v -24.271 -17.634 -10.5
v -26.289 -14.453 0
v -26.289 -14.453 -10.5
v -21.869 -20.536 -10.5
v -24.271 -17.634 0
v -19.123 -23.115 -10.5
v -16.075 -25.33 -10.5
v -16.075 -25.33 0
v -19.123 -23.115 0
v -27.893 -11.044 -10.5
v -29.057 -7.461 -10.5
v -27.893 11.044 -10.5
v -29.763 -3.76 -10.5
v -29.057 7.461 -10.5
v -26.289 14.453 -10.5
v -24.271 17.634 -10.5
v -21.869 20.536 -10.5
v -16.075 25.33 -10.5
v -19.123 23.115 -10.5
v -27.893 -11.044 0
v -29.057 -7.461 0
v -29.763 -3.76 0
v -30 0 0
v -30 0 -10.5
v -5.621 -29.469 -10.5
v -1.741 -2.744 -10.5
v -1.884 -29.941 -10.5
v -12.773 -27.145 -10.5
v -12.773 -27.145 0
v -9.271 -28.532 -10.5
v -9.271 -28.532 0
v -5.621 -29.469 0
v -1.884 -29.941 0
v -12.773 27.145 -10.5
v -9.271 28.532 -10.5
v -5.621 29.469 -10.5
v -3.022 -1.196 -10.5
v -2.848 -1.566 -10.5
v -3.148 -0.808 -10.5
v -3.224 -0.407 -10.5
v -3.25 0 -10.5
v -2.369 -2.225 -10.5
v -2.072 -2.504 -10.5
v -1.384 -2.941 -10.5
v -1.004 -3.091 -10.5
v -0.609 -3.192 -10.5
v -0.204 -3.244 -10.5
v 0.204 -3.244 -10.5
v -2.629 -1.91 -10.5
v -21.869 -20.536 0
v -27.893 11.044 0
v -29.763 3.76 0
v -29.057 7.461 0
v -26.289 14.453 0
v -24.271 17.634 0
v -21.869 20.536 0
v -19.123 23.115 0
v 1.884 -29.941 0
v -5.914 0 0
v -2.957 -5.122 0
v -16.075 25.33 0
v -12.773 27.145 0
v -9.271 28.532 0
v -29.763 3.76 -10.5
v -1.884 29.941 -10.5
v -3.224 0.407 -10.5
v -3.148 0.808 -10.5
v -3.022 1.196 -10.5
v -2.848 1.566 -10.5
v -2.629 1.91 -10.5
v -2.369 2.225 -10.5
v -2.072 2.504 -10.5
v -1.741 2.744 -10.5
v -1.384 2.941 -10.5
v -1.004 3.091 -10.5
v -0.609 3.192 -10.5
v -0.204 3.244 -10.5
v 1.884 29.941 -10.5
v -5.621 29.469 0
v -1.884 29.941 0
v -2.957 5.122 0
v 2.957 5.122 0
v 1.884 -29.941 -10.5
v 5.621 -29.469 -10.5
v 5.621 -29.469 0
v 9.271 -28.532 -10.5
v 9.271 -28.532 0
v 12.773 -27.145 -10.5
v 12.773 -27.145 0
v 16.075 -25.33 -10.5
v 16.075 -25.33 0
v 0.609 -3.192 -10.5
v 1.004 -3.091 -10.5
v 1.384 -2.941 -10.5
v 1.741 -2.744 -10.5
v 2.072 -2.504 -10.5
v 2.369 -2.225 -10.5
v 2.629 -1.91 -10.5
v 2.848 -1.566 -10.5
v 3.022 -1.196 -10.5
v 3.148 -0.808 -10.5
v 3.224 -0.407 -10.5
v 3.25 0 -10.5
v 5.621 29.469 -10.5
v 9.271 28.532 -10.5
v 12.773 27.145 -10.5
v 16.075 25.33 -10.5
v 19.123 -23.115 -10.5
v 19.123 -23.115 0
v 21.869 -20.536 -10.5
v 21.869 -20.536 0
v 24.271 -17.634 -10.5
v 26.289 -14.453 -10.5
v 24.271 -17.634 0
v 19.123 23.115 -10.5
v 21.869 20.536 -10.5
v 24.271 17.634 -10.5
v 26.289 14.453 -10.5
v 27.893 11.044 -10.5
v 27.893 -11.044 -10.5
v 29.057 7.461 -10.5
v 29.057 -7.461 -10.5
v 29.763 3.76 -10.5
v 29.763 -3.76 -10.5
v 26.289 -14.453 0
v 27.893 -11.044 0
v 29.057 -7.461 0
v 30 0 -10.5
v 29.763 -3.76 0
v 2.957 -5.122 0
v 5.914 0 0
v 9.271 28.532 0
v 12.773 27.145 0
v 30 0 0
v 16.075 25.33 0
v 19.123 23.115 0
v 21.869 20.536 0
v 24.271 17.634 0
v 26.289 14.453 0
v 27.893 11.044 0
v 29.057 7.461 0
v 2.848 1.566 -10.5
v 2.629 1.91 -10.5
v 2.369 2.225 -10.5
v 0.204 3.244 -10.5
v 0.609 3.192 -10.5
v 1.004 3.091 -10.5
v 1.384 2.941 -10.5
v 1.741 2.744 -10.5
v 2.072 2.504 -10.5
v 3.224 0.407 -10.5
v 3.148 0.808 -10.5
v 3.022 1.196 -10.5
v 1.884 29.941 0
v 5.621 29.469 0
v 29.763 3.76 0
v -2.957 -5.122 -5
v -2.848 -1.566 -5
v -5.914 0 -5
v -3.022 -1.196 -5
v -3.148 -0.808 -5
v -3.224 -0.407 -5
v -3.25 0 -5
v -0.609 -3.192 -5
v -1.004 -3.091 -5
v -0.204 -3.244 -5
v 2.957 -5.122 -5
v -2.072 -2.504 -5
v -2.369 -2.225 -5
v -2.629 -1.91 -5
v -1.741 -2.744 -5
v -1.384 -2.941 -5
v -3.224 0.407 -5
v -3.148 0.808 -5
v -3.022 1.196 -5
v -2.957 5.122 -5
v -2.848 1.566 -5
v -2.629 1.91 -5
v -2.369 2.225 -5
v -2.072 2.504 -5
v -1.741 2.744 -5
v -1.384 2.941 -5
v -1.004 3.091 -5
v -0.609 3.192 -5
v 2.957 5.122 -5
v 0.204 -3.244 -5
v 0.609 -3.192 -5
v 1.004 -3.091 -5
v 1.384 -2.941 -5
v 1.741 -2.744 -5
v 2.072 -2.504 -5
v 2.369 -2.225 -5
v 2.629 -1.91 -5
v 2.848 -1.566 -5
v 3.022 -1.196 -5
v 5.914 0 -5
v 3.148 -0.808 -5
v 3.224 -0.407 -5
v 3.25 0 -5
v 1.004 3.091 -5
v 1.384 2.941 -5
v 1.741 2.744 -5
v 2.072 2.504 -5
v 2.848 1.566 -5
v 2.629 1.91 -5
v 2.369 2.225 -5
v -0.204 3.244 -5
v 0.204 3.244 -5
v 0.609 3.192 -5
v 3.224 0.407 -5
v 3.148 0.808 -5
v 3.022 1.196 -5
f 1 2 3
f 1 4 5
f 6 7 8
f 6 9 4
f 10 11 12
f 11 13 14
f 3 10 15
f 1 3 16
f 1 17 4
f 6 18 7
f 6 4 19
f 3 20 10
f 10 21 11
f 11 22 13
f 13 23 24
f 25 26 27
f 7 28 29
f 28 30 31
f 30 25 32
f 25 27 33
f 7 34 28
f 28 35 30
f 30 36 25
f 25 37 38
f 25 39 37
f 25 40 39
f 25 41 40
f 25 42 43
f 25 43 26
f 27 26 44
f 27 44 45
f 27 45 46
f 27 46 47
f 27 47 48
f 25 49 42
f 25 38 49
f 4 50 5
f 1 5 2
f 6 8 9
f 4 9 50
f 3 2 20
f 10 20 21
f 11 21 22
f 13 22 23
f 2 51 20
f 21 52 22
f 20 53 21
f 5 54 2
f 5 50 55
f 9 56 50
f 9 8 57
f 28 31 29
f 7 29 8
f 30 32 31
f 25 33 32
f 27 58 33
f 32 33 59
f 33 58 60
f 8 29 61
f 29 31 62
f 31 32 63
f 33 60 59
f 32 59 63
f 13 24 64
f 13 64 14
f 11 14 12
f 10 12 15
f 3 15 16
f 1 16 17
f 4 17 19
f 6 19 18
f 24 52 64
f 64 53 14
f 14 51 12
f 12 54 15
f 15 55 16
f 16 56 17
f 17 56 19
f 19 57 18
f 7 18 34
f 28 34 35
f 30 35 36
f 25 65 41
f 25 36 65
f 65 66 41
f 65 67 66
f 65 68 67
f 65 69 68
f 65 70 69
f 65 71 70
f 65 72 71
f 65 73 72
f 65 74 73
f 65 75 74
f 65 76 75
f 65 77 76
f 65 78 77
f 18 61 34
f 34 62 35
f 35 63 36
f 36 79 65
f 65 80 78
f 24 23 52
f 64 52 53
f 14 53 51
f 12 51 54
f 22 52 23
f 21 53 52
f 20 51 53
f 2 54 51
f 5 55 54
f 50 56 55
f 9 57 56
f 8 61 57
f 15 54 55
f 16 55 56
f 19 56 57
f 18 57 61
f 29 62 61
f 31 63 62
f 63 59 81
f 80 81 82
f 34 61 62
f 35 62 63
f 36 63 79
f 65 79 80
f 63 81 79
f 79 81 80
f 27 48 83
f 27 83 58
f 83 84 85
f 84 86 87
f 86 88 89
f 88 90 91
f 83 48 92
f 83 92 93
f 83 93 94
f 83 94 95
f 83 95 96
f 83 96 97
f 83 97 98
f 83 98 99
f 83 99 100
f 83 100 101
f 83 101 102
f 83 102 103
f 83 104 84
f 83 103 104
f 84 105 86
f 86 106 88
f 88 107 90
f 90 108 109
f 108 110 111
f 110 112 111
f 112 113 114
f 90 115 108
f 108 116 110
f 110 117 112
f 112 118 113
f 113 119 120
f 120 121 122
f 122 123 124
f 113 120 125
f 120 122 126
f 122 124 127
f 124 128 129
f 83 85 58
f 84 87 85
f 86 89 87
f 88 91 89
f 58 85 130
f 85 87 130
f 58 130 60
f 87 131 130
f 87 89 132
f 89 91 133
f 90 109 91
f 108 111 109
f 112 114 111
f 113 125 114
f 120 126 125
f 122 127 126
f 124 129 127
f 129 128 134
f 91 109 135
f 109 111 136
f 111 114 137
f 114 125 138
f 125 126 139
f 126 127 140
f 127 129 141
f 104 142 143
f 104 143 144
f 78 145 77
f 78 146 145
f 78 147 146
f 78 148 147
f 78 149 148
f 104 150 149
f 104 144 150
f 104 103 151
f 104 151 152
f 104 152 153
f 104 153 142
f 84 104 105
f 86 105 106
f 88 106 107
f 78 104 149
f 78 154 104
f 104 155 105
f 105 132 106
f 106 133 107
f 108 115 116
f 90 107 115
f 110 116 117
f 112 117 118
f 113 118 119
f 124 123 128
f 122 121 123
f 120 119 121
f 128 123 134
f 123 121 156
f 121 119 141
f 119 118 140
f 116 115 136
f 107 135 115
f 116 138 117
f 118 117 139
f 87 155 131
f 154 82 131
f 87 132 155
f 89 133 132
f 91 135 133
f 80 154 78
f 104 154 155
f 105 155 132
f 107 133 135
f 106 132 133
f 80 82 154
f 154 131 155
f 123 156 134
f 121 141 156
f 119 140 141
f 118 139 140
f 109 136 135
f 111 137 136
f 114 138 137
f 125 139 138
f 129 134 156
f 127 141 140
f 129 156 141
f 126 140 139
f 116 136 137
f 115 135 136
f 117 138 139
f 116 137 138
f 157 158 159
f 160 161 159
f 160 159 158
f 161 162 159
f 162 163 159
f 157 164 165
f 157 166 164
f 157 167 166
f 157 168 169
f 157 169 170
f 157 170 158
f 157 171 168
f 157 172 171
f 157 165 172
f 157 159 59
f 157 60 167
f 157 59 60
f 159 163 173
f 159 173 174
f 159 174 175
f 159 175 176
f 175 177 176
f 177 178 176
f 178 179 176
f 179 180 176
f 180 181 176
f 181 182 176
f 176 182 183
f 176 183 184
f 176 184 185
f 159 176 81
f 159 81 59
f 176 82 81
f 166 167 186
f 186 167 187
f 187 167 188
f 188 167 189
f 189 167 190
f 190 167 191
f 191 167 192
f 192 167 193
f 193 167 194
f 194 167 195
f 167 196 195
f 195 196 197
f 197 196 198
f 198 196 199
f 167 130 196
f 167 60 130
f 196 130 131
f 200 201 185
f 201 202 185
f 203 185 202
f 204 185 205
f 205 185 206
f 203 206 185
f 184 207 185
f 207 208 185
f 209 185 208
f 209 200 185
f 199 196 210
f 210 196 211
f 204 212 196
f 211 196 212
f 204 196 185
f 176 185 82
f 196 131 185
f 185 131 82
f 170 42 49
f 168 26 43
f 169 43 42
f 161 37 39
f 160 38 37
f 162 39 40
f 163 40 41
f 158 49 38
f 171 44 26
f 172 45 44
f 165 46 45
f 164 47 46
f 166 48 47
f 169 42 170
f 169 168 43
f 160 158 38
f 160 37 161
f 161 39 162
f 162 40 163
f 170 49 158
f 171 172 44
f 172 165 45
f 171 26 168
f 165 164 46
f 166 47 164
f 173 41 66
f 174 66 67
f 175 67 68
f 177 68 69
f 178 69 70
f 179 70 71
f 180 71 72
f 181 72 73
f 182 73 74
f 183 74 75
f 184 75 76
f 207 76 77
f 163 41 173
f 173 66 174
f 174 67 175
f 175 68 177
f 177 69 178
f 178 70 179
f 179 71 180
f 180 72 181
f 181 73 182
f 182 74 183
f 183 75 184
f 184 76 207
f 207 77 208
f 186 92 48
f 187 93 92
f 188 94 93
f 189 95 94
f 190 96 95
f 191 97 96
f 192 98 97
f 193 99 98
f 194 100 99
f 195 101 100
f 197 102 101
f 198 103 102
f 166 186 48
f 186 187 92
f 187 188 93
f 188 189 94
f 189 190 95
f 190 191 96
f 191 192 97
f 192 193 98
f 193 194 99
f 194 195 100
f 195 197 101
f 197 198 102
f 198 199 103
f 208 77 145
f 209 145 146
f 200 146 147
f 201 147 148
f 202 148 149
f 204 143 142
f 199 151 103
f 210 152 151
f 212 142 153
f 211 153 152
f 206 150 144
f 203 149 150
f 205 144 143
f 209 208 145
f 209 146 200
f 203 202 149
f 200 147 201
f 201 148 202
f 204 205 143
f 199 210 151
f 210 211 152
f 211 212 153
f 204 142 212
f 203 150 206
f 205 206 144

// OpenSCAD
$fn = 50;

difference() {
	union() {
		translate(v = [0, 0, -10.5]) {
			cylinder(h = 10.5, r = 30.0);
		}
		#translate(v = [0, 0, -12.0]) {
			cylinder(h = 12, r = 2.875);
		}
	}
	union() {
		translate(v = [0, 0, 0]) {
			rotate(a = [0, 0, 0]) {
				difference() {
					union() {
						translate(v = [0, 0, -5]) {
							linear_extrude(height = 5) {
								polygon(points = [[5.914249999999999, 0.0], [2.957125, 5.1218907443321156], [-2.9571249999999982, 5.1218907443321156], [-5.914249999999999, 7.242867331857232e-16], [-2.9571250000000022, -5.121890744332115], [2.9571249999999956, -5.121890744332118]]);
							}
						}
					}
					union();
				}
			}
		}
		#translate(v = [0, 0, -100.0]) {
			cylinder(h = 200, r = 3.25);
		}
	}
}
